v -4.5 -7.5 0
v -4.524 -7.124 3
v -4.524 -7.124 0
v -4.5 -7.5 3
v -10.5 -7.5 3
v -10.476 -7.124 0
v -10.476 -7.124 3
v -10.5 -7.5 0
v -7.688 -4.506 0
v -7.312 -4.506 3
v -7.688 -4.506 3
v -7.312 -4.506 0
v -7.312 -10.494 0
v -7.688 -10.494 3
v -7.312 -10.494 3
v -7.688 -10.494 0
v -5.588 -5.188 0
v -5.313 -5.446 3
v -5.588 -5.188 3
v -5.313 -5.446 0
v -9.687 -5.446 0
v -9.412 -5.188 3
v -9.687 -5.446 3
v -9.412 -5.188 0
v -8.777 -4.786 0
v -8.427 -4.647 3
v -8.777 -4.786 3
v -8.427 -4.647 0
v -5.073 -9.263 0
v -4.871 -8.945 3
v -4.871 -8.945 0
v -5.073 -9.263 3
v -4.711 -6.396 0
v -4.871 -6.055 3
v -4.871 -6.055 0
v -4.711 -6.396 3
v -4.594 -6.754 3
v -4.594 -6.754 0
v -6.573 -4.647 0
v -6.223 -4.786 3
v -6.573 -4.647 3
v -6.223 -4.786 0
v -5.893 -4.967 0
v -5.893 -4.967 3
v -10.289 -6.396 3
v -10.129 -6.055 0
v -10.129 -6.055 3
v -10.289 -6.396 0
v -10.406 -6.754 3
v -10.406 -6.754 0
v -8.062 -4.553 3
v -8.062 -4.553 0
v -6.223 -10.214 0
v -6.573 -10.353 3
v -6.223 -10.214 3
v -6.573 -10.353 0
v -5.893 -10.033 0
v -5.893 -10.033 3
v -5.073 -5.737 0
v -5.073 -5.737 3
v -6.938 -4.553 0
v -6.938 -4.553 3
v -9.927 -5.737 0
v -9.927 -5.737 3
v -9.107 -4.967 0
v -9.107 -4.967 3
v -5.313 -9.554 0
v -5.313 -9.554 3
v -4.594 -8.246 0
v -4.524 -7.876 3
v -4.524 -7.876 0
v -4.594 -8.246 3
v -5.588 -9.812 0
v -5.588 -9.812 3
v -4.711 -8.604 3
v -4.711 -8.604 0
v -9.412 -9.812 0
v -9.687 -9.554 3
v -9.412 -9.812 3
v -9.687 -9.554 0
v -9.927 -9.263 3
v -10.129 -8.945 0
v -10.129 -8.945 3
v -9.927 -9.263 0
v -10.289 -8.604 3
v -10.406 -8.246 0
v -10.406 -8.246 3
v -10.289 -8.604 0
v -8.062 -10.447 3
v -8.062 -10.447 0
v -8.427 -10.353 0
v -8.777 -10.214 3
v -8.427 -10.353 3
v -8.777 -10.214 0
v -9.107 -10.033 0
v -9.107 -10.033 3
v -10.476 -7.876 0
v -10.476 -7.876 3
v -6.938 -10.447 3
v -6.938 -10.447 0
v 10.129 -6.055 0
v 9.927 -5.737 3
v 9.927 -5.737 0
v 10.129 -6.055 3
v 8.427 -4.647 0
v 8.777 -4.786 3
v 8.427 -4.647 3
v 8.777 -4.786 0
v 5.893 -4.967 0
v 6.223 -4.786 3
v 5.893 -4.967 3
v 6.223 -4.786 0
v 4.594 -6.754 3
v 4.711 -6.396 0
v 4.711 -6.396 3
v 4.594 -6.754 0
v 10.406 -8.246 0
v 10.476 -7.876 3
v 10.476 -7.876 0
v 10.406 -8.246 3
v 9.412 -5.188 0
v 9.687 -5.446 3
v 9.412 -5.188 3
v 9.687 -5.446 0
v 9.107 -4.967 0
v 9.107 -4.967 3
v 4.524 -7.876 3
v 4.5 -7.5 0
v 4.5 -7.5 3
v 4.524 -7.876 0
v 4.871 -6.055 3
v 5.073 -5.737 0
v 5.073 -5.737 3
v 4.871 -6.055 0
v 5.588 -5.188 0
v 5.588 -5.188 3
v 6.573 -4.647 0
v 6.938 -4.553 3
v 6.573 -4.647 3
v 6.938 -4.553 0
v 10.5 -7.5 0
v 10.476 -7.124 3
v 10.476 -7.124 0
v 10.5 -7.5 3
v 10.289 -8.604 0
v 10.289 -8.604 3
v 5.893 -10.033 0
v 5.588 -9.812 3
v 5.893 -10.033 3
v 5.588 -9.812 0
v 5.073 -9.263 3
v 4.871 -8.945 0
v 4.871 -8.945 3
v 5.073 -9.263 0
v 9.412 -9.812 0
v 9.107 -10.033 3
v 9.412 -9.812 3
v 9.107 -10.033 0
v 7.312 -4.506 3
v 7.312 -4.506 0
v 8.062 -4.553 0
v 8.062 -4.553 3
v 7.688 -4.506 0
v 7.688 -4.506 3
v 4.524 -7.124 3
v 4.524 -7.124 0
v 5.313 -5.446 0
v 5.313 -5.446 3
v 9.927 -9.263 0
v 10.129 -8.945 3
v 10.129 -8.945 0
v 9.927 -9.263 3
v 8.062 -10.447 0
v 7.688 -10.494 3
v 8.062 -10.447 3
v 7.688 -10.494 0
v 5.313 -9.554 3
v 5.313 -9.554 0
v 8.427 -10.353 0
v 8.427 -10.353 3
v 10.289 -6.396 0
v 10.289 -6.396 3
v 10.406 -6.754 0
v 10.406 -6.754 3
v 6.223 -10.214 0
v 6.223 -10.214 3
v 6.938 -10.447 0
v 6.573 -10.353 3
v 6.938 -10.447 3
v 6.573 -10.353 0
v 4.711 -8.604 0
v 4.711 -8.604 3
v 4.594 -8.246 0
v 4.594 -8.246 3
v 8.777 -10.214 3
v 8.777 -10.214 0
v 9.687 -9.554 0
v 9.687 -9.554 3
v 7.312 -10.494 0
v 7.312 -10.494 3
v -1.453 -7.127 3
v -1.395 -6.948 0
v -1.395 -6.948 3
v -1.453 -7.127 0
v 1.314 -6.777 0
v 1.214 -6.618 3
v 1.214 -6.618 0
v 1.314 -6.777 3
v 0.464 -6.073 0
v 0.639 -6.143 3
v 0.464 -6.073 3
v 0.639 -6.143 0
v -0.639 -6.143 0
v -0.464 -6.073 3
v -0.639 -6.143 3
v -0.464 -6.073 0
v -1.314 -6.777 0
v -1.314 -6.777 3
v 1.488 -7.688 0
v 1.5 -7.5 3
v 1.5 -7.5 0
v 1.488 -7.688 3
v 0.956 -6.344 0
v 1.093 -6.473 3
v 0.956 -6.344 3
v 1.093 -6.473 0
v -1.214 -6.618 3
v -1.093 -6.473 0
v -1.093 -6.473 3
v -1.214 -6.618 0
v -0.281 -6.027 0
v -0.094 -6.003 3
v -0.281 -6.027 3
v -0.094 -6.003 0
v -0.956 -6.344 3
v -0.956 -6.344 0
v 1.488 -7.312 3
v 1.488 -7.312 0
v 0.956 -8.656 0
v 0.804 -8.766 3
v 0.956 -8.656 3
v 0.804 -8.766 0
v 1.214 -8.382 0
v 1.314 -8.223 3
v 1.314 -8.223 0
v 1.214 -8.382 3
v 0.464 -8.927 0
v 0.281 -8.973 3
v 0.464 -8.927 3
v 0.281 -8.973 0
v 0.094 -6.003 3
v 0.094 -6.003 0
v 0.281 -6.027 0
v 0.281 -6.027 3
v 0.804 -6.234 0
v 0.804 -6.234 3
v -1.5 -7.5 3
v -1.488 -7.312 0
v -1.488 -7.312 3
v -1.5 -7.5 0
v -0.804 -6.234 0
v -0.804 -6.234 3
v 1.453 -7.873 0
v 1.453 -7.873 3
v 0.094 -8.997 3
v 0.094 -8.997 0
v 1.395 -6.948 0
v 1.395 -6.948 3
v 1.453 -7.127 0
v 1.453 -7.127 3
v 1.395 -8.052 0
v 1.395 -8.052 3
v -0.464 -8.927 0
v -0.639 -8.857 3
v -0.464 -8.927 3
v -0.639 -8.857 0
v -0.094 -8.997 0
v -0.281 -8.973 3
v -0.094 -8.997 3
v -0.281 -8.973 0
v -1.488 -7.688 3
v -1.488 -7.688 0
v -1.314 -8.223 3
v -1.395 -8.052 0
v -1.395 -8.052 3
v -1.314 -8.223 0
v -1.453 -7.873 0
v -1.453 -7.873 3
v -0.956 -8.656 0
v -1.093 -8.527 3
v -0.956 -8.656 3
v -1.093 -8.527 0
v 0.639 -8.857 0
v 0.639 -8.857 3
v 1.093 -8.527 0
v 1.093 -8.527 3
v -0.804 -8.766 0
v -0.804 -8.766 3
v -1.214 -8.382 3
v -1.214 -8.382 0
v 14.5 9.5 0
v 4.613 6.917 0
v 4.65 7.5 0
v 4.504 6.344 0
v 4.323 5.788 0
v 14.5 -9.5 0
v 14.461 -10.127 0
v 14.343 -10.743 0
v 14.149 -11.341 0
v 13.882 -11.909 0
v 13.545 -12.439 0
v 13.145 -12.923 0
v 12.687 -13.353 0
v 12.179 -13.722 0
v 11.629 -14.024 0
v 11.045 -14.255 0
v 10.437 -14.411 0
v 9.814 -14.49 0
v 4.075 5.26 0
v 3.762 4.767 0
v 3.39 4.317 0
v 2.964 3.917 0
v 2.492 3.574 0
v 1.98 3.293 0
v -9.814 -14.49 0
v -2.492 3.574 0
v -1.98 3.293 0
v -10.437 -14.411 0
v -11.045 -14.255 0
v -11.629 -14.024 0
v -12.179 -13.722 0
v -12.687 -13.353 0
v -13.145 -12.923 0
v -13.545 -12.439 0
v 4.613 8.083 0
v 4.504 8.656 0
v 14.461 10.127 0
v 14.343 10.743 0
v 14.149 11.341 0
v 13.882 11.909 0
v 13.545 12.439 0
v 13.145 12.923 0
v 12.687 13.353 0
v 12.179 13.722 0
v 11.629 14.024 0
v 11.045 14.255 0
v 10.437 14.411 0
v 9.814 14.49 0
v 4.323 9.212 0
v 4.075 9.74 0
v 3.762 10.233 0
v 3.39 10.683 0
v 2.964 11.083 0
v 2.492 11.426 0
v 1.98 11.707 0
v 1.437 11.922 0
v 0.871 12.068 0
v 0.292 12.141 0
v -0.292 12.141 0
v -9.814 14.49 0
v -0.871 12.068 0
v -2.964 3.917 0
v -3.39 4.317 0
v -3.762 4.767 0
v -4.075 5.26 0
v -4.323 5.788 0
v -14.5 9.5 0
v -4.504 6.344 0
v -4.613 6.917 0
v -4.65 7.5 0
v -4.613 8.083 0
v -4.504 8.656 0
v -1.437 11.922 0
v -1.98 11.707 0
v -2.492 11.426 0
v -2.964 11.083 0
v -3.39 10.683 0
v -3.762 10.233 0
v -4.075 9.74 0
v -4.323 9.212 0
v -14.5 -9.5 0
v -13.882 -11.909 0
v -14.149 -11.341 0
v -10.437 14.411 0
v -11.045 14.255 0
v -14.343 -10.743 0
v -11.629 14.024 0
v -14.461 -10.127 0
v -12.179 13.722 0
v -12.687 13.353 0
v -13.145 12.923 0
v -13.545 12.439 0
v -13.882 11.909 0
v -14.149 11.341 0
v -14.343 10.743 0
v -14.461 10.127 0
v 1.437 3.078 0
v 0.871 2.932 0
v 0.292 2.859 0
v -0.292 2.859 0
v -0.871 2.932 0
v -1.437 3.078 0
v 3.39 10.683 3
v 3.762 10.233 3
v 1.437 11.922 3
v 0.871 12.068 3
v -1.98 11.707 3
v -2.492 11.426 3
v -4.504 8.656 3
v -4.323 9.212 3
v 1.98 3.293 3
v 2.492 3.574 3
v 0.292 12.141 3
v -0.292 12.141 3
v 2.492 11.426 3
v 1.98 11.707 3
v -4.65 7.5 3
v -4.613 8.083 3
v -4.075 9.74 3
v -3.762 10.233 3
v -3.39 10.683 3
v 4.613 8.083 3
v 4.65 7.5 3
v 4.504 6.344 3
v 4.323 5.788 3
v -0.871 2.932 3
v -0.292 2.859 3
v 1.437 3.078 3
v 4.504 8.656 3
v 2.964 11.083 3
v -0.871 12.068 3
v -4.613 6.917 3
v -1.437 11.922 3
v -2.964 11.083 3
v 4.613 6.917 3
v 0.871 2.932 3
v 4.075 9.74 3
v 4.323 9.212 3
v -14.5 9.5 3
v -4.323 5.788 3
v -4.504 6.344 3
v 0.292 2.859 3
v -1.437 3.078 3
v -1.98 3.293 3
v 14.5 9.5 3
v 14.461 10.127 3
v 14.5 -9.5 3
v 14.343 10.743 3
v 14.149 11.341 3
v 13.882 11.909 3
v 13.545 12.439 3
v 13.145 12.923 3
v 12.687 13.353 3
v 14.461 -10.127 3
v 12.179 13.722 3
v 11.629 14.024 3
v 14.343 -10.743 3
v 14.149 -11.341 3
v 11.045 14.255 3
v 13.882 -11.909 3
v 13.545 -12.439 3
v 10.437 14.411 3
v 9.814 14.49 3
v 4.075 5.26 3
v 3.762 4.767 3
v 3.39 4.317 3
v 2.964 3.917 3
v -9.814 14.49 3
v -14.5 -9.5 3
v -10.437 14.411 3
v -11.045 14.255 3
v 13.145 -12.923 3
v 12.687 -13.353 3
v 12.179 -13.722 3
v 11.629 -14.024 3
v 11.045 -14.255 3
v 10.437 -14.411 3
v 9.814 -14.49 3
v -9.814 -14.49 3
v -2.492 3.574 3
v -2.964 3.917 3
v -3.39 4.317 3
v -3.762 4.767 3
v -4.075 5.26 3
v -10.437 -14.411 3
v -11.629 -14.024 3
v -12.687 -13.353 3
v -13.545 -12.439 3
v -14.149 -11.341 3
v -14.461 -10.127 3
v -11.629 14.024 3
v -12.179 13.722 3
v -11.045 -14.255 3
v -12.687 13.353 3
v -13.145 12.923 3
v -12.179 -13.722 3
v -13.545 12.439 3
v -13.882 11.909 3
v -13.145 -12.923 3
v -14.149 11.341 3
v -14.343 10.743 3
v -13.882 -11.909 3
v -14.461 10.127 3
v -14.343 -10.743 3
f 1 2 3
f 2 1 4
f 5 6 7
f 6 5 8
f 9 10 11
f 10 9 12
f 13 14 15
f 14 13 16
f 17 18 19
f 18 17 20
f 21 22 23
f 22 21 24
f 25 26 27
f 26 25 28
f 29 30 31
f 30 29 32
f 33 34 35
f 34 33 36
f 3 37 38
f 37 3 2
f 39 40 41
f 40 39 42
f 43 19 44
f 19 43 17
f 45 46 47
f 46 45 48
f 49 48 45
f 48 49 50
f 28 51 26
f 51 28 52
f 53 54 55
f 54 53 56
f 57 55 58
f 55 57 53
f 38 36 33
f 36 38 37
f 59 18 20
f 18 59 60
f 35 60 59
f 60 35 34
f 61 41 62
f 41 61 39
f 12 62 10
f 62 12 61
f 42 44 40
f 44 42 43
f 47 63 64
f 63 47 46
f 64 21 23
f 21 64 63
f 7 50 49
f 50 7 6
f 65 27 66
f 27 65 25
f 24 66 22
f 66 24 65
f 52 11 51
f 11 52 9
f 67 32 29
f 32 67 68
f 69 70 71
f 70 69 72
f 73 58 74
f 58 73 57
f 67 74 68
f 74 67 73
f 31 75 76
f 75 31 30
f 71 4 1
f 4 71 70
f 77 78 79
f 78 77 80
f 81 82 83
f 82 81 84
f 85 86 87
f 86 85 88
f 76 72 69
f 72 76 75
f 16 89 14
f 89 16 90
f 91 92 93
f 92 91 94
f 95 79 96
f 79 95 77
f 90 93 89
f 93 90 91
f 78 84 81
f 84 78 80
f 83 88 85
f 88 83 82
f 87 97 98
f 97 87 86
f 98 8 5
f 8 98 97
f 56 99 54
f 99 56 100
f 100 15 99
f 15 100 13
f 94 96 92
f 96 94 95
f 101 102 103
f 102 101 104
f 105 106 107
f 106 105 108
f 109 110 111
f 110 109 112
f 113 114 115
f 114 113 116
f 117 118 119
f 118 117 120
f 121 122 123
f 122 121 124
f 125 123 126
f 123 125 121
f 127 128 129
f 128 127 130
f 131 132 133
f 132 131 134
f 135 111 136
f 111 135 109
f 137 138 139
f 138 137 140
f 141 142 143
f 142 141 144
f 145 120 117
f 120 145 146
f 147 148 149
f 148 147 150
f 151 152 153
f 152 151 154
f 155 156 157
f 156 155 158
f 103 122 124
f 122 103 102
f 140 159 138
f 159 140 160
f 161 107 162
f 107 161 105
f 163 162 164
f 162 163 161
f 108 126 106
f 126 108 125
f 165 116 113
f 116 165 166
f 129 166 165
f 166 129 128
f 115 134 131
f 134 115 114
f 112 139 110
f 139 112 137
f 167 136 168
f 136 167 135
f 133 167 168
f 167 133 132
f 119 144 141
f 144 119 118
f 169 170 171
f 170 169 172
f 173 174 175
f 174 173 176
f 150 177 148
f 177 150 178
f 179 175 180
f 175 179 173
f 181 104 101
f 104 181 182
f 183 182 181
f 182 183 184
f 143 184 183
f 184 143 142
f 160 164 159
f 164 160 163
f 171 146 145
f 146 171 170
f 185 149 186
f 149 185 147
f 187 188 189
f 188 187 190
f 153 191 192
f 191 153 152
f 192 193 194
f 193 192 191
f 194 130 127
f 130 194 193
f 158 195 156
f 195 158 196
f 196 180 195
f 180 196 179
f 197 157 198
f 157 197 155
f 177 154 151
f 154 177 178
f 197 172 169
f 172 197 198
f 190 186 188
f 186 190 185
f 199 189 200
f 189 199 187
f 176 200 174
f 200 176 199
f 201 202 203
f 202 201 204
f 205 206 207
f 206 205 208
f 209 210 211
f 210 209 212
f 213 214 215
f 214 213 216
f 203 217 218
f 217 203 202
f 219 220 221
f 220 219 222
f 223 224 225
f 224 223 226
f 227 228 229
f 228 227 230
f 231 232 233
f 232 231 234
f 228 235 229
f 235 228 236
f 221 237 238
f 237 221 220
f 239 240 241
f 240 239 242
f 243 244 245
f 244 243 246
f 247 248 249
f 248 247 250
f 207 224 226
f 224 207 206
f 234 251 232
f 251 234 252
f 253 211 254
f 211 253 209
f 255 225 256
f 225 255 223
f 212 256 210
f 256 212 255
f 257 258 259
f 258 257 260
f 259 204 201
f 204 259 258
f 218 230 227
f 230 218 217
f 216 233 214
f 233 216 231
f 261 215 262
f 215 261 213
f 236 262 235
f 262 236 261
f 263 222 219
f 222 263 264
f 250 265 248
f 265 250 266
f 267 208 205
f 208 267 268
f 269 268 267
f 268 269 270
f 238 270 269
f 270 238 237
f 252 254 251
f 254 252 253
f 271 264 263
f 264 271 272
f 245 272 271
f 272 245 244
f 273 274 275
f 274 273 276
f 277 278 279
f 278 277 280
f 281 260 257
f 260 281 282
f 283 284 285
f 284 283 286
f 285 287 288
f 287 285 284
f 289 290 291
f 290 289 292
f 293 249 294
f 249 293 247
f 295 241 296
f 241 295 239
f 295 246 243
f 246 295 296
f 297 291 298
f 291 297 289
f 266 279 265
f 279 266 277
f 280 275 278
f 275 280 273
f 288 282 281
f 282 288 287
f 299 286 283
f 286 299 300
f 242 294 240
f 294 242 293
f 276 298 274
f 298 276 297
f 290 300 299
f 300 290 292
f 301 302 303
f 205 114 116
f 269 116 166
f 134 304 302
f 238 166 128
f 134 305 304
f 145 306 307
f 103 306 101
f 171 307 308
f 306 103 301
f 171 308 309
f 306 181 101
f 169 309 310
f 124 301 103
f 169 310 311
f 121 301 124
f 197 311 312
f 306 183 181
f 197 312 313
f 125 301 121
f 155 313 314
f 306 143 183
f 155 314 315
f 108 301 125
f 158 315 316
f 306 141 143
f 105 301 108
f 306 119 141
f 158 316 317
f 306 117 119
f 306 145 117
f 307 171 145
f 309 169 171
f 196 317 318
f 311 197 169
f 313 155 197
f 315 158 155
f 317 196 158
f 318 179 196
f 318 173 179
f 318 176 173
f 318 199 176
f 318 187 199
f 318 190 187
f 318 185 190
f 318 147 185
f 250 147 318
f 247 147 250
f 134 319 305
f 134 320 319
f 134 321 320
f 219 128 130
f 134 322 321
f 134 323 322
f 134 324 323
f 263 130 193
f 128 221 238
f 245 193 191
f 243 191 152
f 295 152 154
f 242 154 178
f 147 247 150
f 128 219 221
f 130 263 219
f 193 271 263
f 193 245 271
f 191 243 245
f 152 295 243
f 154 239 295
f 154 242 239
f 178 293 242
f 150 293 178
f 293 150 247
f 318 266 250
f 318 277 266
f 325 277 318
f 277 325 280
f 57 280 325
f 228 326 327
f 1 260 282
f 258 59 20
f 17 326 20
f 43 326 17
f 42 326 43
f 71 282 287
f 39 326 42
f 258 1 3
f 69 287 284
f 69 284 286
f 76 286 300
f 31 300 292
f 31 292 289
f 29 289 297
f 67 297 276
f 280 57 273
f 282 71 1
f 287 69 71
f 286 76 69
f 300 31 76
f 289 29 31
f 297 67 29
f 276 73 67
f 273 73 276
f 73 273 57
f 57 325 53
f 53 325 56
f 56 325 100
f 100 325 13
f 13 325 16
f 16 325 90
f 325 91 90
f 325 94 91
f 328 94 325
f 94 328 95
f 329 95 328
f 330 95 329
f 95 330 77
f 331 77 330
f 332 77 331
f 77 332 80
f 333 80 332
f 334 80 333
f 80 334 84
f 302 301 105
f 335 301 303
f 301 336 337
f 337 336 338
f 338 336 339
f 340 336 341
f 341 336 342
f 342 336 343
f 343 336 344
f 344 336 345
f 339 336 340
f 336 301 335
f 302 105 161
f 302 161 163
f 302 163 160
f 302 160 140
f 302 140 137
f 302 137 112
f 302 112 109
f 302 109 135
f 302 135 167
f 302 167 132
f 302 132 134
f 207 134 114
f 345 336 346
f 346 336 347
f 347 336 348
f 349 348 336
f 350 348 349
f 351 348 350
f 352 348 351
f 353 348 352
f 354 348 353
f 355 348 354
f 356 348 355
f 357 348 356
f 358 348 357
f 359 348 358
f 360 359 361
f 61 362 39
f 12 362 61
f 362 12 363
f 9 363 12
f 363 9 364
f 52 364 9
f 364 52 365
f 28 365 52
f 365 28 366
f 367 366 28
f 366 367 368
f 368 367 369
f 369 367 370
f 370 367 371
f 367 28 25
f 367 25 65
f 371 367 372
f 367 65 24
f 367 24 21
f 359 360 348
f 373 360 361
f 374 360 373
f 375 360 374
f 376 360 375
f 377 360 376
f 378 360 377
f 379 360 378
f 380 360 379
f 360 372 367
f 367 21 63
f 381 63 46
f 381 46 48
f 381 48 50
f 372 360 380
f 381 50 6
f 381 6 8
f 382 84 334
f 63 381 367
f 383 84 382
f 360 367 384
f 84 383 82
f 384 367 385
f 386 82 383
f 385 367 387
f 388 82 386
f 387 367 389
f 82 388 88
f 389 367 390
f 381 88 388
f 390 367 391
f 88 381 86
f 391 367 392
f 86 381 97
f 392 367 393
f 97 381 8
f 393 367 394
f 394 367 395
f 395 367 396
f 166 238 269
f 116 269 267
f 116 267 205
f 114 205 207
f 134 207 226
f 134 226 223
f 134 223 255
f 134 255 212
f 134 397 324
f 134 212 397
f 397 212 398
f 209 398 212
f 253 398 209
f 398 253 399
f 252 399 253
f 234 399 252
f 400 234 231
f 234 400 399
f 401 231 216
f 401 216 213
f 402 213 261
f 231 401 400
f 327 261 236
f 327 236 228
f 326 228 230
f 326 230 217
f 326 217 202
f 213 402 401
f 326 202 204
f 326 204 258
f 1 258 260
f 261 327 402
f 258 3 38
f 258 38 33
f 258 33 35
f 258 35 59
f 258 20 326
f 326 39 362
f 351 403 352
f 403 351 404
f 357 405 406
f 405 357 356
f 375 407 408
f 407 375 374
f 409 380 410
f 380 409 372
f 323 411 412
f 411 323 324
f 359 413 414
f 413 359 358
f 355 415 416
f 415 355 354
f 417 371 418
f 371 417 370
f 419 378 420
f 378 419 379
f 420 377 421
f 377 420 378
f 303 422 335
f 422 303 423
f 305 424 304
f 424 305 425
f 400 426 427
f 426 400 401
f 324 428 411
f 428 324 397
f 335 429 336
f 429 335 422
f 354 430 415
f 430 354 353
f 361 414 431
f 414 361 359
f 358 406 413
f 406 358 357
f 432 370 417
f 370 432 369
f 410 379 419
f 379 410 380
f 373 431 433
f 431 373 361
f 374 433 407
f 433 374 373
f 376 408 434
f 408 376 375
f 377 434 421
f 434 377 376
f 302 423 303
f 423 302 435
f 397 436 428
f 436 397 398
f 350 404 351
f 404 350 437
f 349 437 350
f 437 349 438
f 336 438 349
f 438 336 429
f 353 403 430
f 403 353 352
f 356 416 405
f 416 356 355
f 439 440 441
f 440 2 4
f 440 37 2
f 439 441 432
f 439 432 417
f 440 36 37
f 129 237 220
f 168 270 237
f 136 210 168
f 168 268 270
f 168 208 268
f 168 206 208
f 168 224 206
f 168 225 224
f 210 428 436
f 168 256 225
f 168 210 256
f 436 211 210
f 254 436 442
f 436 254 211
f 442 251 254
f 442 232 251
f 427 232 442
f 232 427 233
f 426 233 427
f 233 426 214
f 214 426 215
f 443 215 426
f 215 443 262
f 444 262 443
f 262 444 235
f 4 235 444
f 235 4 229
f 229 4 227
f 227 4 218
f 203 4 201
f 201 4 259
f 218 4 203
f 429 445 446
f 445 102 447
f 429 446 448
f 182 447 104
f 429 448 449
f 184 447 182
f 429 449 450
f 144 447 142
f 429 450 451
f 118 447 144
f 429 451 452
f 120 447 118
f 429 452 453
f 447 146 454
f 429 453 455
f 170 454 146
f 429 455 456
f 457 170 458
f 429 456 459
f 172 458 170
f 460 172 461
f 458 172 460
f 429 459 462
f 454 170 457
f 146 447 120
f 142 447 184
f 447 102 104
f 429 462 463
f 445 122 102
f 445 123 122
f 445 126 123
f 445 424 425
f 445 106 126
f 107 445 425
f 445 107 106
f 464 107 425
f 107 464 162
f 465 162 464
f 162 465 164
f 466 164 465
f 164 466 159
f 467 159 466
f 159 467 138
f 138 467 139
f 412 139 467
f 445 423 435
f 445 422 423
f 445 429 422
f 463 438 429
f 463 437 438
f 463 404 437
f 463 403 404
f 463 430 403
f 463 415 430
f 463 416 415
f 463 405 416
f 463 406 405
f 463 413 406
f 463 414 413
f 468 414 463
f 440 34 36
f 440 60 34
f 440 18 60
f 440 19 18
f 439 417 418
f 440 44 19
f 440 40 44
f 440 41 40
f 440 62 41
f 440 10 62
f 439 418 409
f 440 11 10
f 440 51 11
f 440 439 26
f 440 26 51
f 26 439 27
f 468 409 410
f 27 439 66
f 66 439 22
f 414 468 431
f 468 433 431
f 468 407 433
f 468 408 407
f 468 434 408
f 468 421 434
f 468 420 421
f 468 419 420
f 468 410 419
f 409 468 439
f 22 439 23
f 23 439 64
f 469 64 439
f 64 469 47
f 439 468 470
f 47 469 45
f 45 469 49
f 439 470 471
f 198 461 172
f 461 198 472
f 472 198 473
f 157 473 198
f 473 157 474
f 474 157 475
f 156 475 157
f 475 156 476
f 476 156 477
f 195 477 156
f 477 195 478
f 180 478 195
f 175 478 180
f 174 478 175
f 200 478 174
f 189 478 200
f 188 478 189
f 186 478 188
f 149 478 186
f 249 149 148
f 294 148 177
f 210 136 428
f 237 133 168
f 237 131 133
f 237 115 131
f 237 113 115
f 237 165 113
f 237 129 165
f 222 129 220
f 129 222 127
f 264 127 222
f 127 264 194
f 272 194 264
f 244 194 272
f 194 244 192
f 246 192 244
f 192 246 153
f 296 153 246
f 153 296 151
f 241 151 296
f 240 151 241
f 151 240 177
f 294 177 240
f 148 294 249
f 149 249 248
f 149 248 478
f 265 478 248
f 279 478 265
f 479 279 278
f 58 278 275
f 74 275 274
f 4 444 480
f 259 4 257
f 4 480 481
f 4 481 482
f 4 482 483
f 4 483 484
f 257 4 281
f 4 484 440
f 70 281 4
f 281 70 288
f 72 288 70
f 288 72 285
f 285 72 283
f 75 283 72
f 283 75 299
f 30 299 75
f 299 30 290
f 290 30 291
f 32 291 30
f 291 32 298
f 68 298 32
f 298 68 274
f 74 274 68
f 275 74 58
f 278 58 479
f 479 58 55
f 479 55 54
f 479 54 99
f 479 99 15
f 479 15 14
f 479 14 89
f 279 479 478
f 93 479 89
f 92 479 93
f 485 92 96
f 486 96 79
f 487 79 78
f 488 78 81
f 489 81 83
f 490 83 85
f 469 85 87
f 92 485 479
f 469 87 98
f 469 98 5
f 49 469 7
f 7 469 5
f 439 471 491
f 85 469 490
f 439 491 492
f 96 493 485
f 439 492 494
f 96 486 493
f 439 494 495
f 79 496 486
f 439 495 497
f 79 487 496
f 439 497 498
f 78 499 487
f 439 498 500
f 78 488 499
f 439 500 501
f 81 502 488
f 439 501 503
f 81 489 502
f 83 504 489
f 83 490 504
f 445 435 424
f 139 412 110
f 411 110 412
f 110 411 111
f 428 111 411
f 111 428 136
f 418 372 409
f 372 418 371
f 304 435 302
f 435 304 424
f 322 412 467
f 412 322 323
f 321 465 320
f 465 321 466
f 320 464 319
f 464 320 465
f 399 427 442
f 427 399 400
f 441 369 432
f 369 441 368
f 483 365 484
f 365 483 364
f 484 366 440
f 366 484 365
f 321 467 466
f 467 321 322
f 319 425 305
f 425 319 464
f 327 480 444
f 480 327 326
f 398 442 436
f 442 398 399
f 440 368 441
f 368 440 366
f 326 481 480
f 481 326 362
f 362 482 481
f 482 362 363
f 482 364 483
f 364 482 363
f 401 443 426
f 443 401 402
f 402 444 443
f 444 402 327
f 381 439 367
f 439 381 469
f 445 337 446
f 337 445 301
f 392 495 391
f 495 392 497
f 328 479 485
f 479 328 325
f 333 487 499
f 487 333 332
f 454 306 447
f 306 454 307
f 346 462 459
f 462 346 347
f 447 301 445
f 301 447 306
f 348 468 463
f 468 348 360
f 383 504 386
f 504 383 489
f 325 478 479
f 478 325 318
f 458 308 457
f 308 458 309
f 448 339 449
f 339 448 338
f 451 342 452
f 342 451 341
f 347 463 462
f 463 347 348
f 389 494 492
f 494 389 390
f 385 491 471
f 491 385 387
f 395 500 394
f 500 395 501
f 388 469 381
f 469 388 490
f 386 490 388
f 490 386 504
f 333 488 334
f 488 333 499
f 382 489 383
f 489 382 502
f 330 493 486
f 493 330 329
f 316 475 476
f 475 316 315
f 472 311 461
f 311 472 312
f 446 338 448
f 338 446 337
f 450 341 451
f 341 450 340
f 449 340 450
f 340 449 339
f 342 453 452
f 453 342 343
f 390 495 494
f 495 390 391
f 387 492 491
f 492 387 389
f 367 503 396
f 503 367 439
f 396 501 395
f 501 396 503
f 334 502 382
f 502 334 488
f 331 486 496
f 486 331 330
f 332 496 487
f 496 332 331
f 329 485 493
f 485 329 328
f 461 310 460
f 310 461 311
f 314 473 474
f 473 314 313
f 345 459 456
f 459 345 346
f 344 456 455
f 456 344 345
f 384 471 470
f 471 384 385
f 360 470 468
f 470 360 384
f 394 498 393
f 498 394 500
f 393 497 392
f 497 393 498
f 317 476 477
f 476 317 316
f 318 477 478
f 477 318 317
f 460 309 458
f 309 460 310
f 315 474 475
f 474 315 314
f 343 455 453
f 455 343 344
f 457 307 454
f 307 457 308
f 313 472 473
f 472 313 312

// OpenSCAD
$fn = 50;


difference() {
	union() {
		hull() {
			translate(v = [-9.5000000000, 9.5000000000, 0]) {
				cylinder(h = 3, r = 5);
			}
			translate(v = [9.5000000000, 9.5000000000, 0]) {
				cylinder(h = 3, r = 5);
			}
			translate(v = [-9.5000000000, -9.5000000000, 0]) {
				cylinder(h = 3, r = 5);
			}
			translate(v = [9.5000000000, -9.5000000000, 0]) {
				cylinder(h = 3, r = 5);
			}
		}
	}
	union() {
		translate(v = [-7.5000000000, -7.5000000000, -100.0000000000]) {
			cylinder(h = 200, r = 3.0000000000);
		}
		translate(v = [7.5000000000, -7.5000000000, -100.0000000000]) {
			cylinder(h = 200, r = 3.0000000000);
		}
		translate(v = [-7.5000000000, -7.5000000000, -100.0000000000]) {
			cylinder(h = 200, r = 1.5000000000);
		}
		translate(v = [0.0000000000, -7.5000000000, -100.0000000000]) {
			cylinder(h = 200, r = 1.5000000000);
		}
		translate(v = [7.5000000000, -7.5000000000, -100.0000000000]) {
			cylinder(h = 200, r = 1.5000000000);
		}
		translate(v = [-7.5000000000, -7.5000000000, -100.0000000000]) {
			cylinder(h = 200, r = 1.5000000000);
		}
		translate(v = [0.0000000000, -7.5000000000, -100.0000000000]) {
			cylinder(h = 200, r = 1.5000000000);
		}
		translate(v = [7.5000000000, -7.5000000000, -100.0000000000]) {
			cylinder(h = 200, r = 1.5000000000);
		}
		translate(v = [-7.5000000000, -7.5000000000, -100.0000000000]) {
			cylinder(h = 200, r = 1.5000000000);
		}
		translate(v = [0.0000000000, -7.5000000000, -100.0000000000]) {
			cylinder(h = 200, r = 1.5000000000);
		}
		translate(v = [7.5000000000, -7.5000000000, -100.0000000000]) {
			cylinder(h = 200, r = 1.5000000000);
		}
		#translate(v = [0, 7.5000000000, 0]) {
			cylinder(h = 3, r = 4.6500000000);
		}
	}
}
